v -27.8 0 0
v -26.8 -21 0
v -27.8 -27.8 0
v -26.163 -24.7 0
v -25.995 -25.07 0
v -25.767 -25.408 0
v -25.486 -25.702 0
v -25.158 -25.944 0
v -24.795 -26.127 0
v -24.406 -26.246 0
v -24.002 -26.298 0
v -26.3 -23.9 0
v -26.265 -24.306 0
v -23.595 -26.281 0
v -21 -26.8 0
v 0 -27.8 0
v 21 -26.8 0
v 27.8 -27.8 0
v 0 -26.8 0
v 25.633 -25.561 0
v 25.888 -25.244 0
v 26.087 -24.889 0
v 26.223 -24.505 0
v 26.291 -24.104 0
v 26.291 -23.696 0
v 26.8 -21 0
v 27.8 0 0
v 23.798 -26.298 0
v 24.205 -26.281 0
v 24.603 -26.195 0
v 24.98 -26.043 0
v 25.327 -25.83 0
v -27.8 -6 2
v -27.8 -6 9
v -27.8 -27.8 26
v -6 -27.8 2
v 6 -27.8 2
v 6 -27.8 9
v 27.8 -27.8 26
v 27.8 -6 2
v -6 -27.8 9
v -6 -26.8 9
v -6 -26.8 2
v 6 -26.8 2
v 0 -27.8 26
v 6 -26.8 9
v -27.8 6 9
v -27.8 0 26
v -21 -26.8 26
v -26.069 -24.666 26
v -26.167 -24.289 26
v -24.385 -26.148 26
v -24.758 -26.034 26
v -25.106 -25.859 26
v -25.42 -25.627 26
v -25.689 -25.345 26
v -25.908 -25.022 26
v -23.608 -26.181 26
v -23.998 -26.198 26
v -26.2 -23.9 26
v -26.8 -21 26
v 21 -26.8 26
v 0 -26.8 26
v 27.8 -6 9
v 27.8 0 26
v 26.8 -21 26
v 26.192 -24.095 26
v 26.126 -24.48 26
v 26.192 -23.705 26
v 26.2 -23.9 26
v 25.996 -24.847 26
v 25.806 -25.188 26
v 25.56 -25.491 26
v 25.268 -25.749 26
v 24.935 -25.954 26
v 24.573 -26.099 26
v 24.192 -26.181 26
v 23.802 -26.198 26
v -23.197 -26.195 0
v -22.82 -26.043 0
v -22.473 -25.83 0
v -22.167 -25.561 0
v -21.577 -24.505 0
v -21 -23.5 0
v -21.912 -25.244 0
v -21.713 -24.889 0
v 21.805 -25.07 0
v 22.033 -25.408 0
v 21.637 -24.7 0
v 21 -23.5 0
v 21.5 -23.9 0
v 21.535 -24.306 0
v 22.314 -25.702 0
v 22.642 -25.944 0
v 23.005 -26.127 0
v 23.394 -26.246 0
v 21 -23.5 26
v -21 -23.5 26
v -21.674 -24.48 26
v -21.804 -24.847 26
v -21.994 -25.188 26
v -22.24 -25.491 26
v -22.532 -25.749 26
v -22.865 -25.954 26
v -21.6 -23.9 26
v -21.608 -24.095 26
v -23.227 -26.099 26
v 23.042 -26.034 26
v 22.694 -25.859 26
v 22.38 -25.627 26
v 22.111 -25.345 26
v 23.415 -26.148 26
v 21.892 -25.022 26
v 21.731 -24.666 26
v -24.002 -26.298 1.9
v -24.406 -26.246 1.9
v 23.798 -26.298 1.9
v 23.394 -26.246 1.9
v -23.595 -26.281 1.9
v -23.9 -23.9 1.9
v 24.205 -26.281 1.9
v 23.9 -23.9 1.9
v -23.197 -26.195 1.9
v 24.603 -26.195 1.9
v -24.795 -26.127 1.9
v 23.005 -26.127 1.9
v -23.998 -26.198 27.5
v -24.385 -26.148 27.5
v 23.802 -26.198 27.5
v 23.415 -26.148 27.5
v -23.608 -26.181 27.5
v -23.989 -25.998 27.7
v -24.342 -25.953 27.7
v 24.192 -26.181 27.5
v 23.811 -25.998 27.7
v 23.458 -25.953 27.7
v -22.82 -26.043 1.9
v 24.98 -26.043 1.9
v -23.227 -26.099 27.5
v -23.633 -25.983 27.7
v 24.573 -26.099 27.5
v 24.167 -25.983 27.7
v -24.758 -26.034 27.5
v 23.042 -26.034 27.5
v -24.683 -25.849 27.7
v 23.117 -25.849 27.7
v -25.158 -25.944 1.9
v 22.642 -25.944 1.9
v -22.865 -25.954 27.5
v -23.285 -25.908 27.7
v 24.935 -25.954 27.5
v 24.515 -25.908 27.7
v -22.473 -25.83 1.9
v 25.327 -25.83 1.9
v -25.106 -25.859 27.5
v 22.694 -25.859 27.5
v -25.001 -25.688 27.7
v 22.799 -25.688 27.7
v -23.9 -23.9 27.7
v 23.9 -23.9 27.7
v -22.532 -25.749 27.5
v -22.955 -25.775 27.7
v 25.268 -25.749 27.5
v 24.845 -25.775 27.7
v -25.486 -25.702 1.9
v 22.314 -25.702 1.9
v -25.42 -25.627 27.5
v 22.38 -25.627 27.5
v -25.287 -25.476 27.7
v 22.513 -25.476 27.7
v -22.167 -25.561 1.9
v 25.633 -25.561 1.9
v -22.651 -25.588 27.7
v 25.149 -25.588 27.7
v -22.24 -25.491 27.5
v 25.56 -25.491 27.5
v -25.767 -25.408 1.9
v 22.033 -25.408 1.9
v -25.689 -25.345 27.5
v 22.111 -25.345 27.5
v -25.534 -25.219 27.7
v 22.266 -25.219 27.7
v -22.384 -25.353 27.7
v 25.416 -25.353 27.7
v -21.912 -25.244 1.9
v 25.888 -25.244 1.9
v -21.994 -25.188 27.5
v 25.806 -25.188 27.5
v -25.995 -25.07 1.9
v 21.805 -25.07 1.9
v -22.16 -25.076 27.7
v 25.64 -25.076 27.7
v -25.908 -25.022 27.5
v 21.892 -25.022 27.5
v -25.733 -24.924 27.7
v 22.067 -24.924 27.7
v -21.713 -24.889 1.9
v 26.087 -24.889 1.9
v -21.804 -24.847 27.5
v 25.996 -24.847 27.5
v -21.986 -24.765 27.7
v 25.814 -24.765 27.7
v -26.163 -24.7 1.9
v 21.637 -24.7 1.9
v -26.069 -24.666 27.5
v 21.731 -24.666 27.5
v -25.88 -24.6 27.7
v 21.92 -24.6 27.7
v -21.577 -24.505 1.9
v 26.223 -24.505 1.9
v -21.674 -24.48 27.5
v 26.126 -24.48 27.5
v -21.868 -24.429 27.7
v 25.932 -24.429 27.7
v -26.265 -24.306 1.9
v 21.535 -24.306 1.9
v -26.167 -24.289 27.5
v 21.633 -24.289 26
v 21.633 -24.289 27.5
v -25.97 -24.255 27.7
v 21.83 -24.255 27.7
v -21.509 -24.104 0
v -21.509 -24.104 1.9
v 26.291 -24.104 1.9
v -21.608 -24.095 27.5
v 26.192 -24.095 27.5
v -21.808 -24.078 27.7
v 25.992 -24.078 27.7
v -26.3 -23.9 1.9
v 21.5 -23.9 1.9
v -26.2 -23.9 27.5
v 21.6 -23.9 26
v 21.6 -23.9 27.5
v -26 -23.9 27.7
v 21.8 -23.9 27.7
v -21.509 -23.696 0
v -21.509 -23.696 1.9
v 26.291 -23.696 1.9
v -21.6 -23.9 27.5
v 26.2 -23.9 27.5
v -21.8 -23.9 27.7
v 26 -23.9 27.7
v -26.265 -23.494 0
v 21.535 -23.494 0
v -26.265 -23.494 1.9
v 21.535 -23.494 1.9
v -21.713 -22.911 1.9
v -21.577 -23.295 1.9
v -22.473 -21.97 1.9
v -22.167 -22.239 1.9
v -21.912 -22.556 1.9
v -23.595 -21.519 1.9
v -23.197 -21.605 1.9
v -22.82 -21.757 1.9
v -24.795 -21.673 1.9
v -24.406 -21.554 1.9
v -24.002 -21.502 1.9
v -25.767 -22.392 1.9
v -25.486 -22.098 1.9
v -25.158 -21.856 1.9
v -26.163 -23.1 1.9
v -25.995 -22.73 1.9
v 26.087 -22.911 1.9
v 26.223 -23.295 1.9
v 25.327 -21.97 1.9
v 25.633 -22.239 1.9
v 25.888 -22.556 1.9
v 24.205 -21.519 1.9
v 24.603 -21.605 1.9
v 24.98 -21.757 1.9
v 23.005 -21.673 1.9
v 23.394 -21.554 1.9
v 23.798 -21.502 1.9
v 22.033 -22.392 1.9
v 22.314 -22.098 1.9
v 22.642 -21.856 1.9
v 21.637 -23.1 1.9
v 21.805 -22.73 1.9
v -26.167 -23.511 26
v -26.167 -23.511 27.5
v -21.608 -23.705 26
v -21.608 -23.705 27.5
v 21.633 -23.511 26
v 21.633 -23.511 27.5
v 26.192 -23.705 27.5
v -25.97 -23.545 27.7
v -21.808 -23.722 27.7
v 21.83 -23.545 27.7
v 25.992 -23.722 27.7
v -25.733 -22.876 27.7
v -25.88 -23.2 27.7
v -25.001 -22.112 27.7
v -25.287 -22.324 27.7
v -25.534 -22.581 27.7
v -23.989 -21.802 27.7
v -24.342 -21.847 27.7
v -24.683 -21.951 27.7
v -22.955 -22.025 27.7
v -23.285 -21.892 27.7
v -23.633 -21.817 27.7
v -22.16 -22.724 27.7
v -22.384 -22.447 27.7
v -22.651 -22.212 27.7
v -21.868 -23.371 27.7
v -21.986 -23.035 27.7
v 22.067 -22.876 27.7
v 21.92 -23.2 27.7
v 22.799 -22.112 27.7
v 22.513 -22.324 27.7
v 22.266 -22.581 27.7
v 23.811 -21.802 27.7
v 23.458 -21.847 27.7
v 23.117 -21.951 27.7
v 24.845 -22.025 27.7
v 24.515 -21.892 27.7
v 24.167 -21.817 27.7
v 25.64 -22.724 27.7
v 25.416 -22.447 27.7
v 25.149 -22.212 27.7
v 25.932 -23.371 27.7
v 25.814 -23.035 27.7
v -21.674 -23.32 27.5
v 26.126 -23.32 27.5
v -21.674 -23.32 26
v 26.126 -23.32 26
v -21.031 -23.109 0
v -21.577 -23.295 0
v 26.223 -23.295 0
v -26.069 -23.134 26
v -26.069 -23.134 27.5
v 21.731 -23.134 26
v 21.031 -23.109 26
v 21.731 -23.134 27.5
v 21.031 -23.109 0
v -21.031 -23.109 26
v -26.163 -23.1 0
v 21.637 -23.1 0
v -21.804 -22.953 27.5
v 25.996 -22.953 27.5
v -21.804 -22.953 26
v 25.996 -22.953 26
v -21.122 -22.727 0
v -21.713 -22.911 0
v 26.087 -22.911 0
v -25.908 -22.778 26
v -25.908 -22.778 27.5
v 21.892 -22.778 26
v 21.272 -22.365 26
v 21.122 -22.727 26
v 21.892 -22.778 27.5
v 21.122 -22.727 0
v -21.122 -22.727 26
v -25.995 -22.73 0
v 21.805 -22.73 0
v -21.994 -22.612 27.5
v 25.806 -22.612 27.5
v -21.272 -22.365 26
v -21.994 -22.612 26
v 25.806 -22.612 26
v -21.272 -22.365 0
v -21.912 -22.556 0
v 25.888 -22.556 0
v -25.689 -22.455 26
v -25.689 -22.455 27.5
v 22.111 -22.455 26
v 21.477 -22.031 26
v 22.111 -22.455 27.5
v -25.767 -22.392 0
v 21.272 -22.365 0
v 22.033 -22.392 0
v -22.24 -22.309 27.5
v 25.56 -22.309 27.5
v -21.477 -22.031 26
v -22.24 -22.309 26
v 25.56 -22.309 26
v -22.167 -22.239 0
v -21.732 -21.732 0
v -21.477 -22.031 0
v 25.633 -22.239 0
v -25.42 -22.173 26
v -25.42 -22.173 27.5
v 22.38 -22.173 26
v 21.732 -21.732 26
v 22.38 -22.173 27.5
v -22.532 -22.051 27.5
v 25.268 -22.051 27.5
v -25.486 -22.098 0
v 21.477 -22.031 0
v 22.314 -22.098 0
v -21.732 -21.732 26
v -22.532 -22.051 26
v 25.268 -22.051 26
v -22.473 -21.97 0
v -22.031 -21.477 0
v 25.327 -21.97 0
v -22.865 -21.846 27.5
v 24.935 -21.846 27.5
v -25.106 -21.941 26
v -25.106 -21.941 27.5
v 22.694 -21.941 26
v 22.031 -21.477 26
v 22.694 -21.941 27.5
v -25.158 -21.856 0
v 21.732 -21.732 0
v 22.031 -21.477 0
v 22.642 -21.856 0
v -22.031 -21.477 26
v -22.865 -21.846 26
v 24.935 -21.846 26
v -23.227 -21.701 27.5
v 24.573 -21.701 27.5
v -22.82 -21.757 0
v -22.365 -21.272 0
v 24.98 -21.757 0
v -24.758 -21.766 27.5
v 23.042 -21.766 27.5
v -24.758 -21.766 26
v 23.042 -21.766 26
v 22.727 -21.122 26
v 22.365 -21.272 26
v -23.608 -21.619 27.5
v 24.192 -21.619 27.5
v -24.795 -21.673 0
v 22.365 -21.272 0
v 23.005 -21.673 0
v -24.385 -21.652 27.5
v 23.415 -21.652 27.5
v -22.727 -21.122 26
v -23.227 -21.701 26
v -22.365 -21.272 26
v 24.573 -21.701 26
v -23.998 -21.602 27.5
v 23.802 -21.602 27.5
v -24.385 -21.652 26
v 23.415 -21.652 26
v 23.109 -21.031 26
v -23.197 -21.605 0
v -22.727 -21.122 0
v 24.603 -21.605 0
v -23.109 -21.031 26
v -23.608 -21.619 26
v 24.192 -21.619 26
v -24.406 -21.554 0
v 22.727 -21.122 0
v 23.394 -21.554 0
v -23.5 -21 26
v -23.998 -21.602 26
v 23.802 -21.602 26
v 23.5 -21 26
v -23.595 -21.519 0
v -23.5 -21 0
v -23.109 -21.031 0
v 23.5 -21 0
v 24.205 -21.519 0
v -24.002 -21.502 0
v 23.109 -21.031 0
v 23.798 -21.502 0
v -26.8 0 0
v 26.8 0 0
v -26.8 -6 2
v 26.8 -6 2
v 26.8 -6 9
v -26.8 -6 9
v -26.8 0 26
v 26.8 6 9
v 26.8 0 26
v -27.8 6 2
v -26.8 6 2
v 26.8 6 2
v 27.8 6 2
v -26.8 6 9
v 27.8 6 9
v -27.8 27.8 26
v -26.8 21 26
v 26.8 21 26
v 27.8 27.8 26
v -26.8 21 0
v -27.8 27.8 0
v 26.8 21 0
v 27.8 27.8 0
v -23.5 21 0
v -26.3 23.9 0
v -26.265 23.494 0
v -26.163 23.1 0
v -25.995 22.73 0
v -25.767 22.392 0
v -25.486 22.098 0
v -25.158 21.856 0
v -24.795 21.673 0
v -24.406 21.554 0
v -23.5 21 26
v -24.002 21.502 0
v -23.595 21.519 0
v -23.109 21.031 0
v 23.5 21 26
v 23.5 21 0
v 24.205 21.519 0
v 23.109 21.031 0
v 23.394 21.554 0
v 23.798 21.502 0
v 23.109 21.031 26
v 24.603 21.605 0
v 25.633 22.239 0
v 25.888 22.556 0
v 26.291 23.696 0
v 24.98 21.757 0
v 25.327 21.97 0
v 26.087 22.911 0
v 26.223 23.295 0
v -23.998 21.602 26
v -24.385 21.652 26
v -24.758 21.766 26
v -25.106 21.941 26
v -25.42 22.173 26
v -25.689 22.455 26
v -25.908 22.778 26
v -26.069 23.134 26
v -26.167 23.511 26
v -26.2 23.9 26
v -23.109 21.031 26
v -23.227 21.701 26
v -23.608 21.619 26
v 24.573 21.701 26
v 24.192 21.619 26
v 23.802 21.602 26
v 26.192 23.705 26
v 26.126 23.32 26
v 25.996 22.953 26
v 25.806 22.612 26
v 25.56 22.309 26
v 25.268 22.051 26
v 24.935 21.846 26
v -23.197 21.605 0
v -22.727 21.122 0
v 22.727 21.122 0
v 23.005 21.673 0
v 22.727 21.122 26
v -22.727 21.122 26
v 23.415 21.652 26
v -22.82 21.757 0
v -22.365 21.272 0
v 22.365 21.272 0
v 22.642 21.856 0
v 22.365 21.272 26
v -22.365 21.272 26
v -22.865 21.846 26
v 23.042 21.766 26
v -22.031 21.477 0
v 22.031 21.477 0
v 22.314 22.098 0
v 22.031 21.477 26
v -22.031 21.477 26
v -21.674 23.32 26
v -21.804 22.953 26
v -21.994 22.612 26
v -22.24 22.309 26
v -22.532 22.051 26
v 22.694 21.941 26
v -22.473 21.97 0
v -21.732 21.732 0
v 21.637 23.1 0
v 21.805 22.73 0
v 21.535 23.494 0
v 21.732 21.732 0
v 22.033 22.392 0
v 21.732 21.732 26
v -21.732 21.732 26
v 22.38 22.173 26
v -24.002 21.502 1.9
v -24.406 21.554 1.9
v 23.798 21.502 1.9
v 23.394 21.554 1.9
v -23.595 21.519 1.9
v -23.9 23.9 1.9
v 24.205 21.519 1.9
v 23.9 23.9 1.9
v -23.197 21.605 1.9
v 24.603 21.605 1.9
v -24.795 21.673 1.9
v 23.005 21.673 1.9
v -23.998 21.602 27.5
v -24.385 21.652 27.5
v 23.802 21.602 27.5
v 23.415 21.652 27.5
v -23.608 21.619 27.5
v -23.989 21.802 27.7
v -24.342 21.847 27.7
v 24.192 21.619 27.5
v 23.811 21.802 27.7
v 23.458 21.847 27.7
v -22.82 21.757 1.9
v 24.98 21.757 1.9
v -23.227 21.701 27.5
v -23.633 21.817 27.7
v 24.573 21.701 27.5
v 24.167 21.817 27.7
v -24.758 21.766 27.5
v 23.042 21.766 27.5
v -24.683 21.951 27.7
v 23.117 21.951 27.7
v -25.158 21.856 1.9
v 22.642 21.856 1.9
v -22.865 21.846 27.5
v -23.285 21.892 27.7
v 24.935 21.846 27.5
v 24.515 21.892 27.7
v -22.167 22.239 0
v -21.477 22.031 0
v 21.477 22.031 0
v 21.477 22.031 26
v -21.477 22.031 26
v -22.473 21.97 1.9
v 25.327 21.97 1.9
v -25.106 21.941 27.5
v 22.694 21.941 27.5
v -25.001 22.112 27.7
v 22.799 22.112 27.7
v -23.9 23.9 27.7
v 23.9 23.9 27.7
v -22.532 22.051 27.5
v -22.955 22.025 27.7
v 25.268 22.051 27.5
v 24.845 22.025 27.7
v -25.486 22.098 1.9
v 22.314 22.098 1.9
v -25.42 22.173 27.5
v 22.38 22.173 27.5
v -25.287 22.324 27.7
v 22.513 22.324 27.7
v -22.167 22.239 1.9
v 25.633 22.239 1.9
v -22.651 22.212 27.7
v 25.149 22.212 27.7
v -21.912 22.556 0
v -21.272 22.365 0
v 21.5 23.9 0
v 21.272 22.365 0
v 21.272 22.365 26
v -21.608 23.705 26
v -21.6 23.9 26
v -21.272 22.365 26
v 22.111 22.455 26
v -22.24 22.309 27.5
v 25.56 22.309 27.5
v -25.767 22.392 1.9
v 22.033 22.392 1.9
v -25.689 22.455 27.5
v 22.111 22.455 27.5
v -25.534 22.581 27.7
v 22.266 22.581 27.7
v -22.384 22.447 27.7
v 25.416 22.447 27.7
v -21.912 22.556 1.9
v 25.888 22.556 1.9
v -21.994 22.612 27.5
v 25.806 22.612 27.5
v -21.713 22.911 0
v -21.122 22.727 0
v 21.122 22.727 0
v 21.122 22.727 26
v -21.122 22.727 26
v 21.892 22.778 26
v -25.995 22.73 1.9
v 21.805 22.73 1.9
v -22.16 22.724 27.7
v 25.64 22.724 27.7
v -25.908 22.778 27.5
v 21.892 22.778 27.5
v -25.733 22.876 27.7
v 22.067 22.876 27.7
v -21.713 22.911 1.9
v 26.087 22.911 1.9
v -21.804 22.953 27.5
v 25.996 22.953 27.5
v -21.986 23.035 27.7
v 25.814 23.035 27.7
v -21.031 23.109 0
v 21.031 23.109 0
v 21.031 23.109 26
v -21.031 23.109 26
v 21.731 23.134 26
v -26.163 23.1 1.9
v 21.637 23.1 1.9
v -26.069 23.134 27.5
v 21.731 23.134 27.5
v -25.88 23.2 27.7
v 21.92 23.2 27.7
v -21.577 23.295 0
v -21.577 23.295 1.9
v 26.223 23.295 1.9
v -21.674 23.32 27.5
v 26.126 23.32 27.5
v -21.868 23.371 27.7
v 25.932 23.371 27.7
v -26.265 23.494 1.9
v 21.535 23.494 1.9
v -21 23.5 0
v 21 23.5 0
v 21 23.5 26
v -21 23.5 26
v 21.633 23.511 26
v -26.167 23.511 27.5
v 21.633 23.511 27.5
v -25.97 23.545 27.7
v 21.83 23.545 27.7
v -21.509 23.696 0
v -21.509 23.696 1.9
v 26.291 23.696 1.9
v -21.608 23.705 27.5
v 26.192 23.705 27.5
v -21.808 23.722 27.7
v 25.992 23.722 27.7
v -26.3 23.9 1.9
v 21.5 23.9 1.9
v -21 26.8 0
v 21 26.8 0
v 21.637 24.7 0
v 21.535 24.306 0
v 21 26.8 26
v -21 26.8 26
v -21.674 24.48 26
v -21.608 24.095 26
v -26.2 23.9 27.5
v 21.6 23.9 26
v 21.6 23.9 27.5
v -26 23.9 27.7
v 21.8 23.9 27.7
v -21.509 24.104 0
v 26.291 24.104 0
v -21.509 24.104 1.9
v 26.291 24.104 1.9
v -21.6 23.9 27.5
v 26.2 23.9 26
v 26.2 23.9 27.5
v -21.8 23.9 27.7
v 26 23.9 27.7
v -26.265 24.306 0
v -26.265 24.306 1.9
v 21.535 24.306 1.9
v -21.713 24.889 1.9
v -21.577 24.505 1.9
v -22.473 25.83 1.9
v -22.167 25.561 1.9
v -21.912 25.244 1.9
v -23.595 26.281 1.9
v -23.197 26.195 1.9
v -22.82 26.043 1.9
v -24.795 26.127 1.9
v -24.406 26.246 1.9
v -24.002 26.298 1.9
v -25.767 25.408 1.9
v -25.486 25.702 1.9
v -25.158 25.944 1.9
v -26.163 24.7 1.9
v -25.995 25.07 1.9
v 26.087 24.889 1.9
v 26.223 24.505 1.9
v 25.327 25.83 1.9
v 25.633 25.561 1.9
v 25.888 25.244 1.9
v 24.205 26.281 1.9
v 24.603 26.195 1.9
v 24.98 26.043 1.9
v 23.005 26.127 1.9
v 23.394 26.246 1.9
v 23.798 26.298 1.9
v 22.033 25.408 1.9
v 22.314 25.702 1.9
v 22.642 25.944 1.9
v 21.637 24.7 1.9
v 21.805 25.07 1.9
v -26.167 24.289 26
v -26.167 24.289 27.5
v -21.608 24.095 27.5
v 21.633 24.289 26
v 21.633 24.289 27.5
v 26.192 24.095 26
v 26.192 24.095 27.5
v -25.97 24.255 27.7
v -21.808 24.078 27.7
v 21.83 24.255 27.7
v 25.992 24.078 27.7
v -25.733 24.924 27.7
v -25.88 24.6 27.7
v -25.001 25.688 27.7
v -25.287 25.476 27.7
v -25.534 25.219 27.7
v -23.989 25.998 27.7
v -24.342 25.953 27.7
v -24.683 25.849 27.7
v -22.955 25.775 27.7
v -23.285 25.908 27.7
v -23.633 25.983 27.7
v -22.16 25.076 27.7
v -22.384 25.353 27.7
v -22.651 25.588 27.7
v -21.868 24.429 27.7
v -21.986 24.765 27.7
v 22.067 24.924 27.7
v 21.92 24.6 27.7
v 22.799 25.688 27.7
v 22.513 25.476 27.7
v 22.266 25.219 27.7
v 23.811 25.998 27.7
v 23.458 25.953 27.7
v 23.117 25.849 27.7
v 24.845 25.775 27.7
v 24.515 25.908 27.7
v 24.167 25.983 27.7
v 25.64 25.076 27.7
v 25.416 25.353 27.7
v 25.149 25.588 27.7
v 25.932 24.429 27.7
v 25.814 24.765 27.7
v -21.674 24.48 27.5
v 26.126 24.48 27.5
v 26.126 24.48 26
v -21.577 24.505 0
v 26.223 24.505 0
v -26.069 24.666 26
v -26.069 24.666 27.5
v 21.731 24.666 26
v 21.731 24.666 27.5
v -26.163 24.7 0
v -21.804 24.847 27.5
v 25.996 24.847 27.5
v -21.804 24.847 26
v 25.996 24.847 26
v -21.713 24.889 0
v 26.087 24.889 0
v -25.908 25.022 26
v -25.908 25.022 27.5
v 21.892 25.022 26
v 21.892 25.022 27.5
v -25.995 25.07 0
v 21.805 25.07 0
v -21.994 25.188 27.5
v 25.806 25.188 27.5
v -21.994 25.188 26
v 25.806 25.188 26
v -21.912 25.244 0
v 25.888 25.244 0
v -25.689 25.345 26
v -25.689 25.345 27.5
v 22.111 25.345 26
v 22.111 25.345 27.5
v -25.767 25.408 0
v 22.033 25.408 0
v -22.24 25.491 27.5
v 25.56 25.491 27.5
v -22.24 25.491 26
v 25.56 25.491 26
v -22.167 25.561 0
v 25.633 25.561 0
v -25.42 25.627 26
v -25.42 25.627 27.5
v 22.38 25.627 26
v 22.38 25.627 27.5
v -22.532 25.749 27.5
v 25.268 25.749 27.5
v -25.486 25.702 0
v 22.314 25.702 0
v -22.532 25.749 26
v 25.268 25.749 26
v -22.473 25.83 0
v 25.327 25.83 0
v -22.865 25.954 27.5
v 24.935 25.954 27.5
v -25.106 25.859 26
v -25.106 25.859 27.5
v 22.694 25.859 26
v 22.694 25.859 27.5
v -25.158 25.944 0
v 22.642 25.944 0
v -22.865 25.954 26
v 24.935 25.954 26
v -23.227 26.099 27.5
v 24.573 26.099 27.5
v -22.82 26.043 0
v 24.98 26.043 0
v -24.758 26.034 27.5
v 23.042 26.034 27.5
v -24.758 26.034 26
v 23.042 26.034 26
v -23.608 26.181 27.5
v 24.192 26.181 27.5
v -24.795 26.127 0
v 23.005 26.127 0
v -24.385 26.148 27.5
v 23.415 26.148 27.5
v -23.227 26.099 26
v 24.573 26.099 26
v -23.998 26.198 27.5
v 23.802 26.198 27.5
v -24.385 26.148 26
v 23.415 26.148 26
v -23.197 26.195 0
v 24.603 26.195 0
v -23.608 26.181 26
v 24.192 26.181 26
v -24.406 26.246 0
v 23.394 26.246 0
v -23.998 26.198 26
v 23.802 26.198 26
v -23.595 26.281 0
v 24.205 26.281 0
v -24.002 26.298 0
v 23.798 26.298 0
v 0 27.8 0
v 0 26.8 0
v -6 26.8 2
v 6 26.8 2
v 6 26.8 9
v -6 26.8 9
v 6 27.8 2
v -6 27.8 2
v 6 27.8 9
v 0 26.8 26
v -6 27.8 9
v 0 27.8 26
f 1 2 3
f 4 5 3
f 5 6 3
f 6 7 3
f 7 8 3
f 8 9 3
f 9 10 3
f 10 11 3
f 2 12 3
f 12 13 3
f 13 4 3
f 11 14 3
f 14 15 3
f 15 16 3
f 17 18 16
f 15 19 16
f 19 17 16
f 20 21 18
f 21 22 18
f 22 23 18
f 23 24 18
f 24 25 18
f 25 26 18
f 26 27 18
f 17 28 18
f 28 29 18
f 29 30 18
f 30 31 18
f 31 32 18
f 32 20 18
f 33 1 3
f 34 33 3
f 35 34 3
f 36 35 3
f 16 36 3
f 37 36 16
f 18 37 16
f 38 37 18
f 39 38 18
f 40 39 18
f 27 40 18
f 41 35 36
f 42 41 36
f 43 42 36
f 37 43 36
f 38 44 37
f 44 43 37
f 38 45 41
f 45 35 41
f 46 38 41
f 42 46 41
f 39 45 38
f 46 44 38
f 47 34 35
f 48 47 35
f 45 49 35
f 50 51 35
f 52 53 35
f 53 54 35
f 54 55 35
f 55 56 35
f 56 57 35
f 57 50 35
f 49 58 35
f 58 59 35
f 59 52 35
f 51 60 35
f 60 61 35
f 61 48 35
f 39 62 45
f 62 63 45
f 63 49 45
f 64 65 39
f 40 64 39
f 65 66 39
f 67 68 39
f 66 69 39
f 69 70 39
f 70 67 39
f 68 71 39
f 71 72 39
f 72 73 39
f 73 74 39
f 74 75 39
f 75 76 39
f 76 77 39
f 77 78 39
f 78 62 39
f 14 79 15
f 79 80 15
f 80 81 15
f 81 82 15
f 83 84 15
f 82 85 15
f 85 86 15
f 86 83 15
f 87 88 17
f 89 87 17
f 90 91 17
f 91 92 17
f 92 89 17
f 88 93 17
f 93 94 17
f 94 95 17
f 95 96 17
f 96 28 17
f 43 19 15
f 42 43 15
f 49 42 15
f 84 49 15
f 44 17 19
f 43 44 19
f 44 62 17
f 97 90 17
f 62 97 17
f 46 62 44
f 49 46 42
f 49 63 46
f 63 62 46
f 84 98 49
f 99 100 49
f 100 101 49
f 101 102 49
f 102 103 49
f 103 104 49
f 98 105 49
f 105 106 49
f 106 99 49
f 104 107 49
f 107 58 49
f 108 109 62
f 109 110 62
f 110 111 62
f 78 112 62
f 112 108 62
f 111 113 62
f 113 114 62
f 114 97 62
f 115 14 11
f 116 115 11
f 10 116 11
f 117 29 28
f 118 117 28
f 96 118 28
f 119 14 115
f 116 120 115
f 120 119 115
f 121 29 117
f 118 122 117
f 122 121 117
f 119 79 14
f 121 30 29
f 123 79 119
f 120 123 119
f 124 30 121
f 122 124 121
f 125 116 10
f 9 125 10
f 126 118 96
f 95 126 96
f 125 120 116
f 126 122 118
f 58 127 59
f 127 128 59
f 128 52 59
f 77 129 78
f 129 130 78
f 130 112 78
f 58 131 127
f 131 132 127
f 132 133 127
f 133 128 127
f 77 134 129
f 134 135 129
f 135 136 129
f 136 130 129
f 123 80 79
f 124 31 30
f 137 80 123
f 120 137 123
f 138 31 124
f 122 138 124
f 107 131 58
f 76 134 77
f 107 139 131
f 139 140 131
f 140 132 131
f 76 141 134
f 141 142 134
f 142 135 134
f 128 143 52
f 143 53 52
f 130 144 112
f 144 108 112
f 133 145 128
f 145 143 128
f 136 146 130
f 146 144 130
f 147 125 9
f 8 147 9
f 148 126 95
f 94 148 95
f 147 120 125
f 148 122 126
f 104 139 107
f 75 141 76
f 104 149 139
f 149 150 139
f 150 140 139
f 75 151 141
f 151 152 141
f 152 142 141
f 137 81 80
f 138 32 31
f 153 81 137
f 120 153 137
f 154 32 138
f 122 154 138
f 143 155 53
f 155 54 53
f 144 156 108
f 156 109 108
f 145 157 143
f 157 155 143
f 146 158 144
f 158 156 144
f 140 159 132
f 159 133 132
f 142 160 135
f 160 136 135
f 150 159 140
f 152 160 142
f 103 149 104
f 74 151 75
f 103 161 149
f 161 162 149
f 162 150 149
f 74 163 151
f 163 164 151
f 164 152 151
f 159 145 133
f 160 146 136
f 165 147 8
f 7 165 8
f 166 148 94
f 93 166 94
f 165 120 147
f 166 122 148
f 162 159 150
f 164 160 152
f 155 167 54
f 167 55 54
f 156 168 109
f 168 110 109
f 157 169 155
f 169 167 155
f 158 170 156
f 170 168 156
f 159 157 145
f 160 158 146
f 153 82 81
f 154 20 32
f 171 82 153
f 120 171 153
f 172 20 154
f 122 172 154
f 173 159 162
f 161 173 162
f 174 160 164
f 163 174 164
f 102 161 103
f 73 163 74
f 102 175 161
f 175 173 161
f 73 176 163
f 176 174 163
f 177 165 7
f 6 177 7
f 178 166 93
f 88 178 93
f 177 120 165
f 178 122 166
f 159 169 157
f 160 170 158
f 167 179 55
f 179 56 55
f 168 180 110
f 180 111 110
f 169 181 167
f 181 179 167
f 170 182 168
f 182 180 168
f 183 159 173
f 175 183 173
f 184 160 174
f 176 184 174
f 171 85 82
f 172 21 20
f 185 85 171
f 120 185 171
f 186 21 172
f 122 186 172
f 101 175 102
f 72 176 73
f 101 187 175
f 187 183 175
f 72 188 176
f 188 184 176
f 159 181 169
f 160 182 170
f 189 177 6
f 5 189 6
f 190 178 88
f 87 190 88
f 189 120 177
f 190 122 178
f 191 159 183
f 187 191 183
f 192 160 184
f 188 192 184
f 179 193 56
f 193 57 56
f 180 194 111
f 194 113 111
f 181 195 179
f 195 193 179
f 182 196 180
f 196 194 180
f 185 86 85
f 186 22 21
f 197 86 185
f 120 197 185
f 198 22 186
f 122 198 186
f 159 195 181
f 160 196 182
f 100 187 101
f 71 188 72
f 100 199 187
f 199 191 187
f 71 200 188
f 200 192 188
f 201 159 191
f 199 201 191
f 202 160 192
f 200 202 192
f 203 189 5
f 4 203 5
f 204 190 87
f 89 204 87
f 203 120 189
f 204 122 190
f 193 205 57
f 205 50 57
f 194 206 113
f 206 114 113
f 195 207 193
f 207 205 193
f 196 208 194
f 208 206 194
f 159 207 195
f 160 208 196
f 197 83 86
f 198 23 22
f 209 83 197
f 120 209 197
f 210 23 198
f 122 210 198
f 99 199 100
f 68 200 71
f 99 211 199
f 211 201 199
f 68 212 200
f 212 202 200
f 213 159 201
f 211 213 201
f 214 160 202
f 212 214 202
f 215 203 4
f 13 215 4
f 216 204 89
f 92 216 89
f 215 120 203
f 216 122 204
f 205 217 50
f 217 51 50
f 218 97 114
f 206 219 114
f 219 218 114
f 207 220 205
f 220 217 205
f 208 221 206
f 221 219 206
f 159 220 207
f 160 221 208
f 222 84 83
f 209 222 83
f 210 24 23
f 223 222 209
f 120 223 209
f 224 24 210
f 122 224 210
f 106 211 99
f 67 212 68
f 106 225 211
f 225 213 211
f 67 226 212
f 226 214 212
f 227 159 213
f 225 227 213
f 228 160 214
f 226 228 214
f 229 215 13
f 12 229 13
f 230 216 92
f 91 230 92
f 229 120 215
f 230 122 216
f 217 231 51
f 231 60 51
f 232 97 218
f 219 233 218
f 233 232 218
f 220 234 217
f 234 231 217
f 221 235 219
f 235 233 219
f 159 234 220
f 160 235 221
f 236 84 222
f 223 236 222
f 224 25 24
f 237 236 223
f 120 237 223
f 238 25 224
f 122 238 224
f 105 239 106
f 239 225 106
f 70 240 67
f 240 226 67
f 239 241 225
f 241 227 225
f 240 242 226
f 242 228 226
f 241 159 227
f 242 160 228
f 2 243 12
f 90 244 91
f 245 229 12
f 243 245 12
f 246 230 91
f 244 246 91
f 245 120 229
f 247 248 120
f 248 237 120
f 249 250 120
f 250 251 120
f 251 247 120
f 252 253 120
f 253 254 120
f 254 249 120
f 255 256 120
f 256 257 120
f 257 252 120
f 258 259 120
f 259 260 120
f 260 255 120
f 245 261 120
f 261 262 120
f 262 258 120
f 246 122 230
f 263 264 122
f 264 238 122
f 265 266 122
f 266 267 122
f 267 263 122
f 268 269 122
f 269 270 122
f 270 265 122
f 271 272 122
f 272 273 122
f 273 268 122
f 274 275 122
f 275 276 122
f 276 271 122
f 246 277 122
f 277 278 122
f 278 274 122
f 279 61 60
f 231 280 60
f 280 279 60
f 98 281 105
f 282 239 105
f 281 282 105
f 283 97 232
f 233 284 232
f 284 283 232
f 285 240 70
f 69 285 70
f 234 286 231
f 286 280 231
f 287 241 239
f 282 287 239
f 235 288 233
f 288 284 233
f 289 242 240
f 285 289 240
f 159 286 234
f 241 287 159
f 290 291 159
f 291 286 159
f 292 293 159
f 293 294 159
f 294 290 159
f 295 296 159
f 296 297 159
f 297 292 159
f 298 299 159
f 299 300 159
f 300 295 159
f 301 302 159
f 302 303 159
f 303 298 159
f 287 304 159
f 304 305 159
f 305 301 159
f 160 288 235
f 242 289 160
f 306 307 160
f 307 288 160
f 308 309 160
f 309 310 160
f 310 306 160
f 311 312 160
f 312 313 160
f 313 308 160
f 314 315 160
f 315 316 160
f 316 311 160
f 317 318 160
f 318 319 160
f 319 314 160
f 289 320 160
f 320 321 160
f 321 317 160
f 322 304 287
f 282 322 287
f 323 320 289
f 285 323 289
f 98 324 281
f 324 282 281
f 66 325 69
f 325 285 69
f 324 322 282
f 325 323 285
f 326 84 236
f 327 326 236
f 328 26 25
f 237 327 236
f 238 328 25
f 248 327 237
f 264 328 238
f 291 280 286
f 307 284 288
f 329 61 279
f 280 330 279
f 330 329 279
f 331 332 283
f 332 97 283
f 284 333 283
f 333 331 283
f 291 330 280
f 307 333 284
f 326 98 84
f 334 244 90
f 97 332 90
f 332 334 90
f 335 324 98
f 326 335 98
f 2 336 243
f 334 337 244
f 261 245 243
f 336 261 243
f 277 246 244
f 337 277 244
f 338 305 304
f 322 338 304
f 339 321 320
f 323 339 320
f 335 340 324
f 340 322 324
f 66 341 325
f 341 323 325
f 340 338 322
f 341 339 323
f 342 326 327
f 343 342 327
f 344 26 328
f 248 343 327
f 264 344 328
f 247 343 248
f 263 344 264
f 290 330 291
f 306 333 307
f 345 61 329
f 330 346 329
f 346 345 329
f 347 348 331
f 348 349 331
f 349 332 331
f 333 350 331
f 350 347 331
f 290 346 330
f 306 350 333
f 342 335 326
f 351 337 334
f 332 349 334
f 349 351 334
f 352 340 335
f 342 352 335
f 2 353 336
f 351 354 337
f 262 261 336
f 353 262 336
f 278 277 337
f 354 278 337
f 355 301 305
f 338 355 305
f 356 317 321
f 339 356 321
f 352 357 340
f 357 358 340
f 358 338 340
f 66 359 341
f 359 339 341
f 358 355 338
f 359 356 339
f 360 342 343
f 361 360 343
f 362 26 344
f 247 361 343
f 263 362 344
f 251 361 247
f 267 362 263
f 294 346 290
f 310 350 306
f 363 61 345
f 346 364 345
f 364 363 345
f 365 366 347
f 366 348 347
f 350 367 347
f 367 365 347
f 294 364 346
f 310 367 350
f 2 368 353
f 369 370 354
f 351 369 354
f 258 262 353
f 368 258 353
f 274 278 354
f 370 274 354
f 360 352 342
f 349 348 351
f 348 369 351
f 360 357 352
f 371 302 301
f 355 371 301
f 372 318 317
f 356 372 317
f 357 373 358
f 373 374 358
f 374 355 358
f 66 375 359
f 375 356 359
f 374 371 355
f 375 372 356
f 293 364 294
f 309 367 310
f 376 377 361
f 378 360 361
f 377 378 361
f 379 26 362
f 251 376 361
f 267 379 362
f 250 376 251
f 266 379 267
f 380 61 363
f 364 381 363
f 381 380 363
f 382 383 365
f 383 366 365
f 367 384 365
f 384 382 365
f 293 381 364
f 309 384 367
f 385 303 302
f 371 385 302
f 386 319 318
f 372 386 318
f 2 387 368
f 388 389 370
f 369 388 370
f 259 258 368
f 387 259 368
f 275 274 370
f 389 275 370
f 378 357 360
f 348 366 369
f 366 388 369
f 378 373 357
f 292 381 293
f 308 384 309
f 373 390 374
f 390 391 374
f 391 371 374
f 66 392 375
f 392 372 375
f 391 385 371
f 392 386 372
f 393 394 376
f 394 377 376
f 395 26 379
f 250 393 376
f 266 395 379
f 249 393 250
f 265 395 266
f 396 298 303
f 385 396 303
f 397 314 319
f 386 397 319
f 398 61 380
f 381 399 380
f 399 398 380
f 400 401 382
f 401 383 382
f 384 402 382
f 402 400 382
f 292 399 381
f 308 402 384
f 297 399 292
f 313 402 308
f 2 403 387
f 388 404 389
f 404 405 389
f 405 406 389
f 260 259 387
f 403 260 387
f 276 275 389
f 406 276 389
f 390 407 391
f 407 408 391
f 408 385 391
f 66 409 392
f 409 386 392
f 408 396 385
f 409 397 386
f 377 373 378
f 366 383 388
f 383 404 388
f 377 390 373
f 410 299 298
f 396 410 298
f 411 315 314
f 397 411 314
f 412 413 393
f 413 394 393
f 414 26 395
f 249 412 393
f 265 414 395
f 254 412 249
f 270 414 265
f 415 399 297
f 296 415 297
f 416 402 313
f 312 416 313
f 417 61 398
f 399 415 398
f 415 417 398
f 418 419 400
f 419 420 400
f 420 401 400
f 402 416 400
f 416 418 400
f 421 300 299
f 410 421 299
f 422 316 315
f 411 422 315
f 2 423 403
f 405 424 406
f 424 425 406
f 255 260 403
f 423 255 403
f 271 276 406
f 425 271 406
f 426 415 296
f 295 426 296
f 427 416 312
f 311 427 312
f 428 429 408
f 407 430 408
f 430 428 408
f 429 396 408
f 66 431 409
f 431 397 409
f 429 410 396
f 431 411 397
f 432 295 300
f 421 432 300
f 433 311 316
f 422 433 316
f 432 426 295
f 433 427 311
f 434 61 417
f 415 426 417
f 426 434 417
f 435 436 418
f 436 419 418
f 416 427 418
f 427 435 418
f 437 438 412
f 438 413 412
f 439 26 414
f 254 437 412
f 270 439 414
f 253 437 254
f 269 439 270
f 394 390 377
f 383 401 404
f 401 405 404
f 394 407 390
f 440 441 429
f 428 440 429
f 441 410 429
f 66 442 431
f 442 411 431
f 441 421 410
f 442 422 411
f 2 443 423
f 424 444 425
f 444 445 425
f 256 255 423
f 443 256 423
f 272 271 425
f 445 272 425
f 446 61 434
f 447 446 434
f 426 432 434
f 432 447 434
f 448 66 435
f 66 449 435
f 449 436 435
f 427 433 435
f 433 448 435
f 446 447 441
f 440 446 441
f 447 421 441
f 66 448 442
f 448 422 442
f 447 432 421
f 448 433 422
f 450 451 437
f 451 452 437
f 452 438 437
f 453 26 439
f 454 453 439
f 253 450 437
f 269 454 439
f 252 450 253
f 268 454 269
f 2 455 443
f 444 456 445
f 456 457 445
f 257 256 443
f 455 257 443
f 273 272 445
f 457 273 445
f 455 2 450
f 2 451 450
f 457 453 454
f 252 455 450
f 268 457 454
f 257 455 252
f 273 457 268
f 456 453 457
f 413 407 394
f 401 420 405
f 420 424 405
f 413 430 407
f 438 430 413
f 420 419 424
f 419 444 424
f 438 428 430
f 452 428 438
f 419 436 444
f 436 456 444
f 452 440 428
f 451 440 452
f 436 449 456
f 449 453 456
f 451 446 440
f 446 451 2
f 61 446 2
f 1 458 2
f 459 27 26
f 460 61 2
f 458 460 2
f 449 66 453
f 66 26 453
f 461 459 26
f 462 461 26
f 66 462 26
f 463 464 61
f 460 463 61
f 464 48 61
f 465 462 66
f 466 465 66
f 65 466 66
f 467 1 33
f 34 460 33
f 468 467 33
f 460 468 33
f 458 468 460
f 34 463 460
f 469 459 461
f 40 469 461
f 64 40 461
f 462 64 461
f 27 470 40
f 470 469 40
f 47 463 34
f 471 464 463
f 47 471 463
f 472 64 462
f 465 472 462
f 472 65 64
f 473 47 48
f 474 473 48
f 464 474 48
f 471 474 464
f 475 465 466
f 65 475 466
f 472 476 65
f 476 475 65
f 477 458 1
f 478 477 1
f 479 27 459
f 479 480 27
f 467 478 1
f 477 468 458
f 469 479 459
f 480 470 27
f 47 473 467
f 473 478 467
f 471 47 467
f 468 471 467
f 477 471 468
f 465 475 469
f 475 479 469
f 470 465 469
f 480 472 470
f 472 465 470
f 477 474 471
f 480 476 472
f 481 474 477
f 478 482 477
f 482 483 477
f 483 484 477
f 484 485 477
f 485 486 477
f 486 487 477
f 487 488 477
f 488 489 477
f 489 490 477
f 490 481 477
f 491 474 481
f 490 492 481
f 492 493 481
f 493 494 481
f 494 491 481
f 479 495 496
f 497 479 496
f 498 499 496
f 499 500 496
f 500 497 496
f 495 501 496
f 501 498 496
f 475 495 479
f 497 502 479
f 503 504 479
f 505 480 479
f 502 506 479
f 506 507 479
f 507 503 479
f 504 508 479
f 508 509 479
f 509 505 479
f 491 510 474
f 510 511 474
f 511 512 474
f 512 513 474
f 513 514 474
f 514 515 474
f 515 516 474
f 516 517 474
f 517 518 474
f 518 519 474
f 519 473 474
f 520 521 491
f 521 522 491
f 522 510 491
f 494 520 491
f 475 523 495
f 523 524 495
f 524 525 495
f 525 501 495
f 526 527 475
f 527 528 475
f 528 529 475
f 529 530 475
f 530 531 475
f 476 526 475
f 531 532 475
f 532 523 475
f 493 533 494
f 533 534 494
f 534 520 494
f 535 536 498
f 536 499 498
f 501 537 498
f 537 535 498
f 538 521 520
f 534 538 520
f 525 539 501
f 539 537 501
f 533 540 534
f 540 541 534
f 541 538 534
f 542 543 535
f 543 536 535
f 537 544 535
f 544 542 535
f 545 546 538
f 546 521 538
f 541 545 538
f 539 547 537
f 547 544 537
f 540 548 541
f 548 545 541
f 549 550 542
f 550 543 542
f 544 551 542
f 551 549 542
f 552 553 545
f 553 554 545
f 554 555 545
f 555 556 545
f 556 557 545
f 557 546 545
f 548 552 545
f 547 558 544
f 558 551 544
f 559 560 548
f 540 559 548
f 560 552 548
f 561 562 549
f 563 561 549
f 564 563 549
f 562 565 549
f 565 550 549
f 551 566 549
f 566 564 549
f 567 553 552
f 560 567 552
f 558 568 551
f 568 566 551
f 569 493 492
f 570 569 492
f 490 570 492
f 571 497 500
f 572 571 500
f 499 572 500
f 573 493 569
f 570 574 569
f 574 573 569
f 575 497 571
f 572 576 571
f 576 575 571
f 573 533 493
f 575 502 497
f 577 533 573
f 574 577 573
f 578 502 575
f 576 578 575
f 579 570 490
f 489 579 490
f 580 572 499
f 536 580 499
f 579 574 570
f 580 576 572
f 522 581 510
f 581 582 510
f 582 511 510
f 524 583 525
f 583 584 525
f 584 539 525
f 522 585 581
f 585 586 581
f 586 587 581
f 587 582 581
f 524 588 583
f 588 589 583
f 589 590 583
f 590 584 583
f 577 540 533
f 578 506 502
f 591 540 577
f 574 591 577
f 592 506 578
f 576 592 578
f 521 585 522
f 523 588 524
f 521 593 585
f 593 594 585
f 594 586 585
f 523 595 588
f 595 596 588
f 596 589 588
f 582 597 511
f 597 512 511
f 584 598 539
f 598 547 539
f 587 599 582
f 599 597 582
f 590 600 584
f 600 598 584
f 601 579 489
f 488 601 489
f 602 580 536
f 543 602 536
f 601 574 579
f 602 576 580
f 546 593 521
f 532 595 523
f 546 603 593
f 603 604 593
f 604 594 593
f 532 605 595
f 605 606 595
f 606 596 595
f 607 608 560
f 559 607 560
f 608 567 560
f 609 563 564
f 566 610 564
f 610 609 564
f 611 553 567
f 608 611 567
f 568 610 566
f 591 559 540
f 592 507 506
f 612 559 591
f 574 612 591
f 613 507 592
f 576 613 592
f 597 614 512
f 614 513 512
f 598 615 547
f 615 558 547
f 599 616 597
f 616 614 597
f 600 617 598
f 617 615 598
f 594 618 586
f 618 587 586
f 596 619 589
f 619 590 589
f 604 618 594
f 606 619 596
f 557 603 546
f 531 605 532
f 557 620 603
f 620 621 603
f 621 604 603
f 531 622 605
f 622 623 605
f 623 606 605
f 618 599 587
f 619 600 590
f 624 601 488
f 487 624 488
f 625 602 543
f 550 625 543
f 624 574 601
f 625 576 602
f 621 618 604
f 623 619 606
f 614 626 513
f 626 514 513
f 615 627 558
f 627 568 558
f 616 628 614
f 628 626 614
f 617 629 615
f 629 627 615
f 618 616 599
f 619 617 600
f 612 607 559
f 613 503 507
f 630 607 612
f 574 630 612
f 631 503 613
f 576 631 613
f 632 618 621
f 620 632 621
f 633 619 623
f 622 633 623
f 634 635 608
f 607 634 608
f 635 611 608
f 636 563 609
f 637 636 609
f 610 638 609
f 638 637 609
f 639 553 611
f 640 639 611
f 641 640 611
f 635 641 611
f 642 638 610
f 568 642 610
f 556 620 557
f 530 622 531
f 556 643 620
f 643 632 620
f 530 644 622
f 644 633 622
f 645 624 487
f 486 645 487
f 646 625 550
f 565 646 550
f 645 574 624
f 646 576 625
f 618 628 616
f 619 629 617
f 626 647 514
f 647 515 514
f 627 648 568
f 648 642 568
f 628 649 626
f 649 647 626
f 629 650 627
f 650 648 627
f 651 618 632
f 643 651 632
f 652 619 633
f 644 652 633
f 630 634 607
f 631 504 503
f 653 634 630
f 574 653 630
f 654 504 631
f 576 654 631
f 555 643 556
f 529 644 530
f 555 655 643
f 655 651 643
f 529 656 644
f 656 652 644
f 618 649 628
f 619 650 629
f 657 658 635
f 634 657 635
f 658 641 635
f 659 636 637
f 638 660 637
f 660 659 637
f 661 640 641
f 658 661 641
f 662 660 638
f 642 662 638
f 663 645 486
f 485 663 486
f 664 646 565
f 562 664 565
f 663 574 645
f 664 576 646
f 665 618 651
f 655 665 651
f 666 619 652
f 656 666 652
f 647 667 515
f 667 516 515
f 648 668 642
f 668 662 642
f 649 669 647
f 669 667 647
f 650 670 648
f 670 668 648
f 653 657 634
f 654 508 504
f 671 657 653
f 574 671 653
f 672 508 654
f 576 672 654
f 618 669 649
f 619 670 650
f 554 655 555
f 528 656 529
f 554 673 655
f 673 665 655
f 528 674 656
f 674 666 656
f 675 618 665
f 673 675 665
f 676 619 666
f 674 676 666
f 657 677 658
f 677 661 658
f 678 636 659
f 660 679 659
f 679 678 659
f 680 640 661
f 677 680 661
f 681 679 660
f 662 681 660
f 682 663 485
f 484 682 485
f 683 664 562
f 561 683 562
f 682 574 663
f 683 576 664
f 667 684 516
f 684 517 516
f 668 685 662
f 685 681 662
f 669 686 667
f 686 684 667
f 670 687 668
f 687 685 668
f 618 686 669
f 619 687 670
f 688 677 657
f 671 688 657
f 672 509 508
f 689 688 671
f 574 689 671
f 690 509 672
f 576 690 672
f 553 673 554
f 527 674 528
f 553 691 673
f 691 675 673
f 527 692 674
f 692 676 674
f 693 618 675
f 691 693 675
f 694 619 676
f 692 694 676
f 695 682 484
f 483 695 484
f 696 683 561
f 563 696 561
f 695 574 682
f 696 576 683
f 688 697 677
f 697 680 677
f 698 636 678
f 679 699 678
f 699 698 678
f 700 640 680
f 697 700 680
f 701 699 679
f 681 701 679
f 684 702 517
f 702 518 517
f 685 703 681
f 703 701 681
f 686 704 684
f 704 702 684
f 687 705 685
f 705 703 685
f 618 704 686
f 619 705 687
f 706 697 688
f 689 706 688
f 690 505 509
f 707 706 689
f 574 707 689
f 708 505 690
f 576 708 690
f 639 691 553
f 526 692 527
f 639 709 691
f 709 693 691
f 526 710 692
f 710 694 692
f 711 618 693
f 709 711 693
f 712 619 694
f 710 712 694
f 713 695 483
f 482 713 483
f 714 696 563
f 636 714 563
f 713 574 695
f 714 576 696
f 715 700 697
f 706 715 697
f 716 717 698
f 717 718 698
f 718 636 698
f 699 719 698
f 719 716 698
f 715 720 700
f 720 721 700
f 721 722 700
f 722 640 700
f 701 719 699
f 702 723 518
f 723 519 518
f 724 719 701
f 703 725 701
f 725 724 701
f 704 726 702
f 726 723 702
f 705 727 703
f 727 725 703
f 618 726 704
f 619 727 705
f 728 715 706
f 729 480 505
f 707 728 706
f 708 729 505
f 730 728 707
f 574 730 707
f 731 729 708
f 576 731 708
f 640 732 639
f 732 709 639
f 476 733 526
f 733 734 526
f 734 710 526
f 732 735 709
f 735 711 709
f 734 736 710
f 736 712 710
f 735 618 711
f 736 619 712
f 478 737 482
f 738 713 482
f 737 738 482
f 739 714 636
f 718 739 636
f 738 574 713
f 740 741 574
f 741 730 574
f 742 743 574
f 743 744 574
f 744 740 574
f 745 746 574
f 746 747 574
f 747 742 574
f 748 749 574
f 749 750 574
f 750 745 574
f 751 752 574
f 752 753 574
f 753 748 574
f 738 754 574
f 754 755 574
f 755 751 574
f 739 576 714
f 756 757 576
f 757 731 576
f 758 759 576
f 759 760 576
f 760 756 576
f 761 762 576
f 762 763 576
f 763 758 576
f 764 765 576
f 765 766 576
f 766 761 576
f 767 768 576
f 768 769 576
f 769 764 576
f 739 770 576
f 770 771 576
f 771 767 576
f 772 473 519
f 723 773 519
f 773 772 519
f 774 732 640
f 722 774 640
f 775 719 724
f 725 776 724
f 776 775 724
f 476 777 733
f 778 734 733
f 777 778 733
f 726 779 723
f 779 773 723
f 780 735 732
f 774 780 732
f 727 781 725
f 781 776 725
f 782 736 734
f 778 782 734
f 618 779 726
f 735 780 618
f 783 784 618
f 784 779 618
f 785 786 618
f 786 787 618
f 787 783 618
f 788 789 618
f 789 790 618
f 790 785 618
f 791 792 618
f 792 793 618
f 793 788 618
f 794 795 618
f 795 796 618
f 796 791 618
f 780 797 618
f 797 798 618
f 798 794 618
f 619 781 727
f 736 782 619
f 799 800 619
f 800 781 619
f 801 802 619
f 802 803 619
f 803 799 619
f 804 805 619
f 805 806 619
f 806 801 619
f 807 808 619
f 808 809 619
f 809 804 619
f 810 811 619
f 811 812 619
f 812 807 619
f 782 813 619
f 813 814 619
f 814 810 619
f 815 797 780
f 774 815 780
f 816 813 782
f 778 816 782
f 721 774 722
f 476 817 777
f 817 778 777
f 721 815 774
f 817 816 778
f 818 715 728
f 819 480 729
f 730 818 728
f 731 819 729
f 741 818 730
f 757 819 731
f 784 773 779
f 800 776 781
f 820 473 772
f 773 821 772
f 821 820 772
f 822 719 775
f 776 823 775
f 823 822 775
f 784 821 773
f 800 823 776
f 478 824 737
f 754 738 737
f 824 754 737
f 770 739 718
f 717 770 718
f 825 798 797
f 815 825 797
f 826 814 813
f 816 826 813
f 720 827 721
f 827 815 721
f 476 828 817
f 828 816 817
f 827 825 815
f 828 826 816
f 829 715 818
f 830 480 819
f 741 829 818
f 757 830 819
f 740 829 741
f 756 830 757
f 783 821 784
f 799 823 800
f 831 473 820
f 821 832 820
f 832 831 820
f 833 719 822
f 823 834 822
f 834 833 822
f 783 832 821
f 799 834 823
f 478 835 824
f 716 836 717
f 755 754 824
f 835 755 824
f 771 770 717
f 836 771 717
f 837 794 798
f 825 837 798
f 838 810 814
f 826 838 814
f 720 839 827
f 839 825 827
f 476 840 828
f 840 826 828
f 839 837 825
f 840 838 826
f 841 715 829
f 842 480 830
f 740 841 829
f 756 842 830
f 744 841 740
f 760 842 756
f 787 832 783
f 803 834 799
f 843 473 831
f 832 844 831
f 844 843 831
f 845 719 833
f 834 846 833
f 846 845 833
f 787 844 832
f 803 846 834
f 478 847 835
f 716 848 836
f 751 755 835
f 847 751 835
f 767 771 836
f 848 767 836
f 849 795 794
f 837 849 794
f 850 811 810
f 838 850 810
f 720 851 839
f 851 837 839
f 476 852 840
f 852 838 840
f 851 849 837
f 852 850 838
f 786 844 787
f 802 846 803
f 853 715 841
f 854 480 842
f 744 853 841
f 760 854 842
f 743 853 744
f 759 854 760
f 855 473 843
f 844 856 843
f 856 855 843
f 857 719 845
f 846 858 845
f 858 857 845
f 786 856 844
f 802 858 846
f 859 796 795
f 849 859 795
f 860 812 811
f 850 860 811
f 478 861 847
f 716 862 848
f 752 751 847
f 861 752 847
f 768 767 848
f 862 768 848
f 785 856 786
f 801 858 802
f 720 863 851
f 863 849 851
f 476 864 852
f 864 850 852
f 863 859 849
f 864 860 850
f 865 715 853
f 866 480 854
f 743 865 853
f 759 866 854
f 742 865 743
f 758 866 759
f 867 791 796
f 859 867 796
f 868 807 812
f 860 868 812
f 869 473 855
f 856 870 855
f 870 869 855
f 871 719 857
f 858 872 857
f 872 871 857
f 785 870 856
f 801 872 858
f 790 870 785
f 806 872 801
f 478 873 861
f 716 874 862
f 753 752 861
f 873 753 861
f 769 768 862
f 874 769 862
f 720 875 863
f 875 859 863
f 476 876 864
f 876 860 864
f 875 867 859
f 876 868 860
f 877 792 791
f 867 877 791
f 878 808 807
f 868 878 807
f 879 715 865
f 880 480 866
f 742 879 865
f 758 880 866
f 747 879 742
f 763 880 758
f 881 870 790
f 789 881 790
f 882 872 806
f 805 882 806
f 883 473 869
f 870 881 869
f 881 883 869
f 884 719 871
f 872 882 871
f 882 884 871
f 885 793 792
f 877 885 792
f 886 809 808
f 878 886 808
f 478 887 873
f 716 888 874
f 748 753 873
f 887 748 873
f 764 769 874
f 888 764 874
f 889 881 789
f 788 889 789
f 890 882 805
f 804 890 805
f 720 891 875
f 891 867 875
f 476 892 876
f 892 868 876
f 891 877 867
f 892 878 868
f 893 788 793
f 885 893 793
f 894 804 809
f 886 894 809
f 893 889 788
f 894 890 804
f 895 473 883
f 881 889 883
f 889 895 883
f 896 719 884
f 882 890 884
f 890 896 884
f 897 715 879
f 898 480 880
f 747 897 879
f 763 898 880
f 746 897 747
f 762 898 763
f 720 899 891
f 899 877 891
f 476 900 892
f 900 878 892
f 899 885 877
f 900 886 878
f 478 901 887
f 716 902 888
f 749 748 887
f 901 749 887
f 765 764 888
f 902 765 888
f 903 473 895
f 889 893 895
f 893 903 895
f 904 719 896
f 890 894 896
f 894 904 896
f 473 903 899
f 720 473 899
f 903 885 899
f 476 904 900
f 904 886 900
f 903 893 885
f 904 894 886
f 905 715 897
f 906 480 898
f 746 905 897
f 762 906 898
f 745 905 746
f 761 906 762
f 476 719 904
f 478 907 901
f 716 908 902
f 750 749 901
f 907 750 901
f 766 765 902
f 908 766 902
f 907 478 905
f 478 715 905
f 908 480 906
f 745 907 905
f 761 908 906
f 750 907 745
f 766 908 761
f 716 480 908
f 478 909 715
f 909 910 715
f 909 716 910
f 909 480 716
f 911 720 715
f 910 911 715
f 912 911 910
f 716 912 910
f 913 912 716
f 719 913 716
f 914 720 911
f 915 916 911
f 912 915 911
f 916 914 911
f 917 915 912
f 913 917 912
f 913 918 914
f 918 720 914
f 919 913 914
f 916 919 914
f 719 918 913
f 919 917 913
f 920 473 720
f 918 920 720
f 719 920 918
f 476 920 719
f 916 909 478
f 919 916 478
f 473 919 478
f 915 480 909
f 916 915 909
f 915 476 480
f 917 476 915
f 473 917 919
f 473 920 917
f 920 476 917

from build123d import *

# Parameters (mm, degrees)
SKICA1_W                 = 5.8
SKICA1_H                 = 5.8
SKICA1_W_2               = 1
SKICA1_H_2               = 42
SKICA1_W_3               = 42
SKICA1_H_3               = 1
P_IDAT_VYSUNUT_M2_DEPTH  = 26
ZAOBLIT1_R               = 2.5
SKICA2_R                 = 2.4
ODEBRAT_VYSUNUT_M1_DEPTH = 1.9
SKICA3_R                 = 2.3
P_IDAT_VYSUNUT_M3_DEPTH  = 1.7
ZKOSEN_1_SIZE            = 0.2
SKICA4_W                 = 12
SKICA4_H                 = 7
ODEBRAT_VYSUNUT_M2_DEPTH = 68.7
SKICA5_W                 = 7
SKICA5_H                 = 12
ODEBRAT_VYSUNUT_M3_DEPTH = 55.6


with BuildPart() as part:
    # Skica1 → Přidat vysunutím2 (new body)
    with BuildSketch(Plane.XY):
        Polygon((-27.8, 27.8), (-27.8, 21), (-26.8, 21), (-26.8, 26.8), (-21, 26.8), (-21, 27.8), align=None)
        with Locations((-23.9, 23.9)):
            Rectangle(SKICA1_W, SKICA1_H)
        Polygon((26.8, 21), (27.8, 21), (27.8, 27.8), (21, 27.8), (21, 26.8), (26.8, 26.8), align=None)
        with Locations((23.9, 23.9)):
            Rectangle(SKICA1_W, SKICA1_H)
        Polygon((21, -26.8), (21, -27.8), (27.8, -27.8), (27.8, -21), (26.8, -21), (26.8, -26.8), align=None)
        with Locations((23.9, -23.9)):
            Rectangle(SKICA1_W, SKICA1_H)
        with Locations((-23.9, -23.9)):
            Rectangle(SKICA1_W, SKICA1_H)
        Polygon((-27.8, -27.8), (-21, -27.8), (-21, -26.8), (-26.8, -26.8), (-26.8, -21), (-27.8, -21), align=None)
        with Locations((-27.3, 0)):
            Rectangle(SKICA1_W_2, SKICA1_H_2)
        with Locations((0, -27.3)):
            Rectangle(SKICA1_W_3, SKICA1_H_3)
        with Locations((27.3, 0)):
            Rectangle(SKICA1_W_2, SKICA1_H_2)
        with Locations((0, 27.3)):
            Rectangle(SKICA1_W_3, SKICA1_H_3)
    extrude(amount=P_IDAT_VYSUNUT_M2_DEPTH)

    # Zaoblit1
    zaoblit1_edges = [part.edges().sort_by_distance(p)[0] for p in [
        (21, -21, 13),
        (21, 21, 13),
        (-21, 21, 13),
        (-21, -21, 13),
    ]]
    fillet(zaoblit1_edges, radius=ZAOBLIT1_R)

    # Skica2 → Odebrat vysunutím1 (cut)
    with BuildSketch(Plane(origin=(0, 0, 0), x_dir=(-1, 0, 0), z_dir=(0, 0, -1))):
        with Locations((-23.9, 23.9)):
            Circle(SKICA2_R)
        with Locations((23.9, 23.9)):
            Circle(SKICA2_R)
        with Locations((23.9, -23.9)):
            Circle(SKICA2_R)
        with Locations((-23.9, -23.9)):
            Circle(SKICA2_R)
    extrude(amount=-ODEBRAT_VYSUNUT_M1_DEPTH, mode=Mode.SUBTRACT)

    # Skica3 → Přidat vysunutím3 (add)
    with BuildSketch(Plane.XY.offset(26)):
        with Locations((-23.9, 23.9)):
            Circle(SKICA3_R)
        with Locations((23.9, 23.9)):
            Circle(SKICA3_R)
        with Locations((23.9, -23.9)):
            Circle(SKICA3_R)
        with Locations((-23.9, -23.9)):
            Circle(SKICA3_R)
    extrude(amount=P_IDAT_VYSUNUT_M3_DEPTH)

    # Zkosení1
    zkosen_1_edges = [part.edges().sort_by_distance(p)[0] for p in [
        (-26.2, 23.9, 27.7),
        (21.6, 23.9, 27.7),
        (21.6, -23.9, 27.7),
        (-26.2, -23.9, 27.7),
    ]]
    chamfer(zkosen_1_edges, length=ZKOSEN_1_SIZE)

    # Skica4 → Odebrat vysunutím2 (cut)
    with BuildSketch(Plane(origin=(0, -27.8, 0), x_dir=(-1, 0, 0), z_dir=(0, -1, 0))):
        with Locations((0, -5.5)):
            Rectangle(SKICA4_W, SKICA4_H)
    extrude(amount=-ODEBRAT_VYSUNUT_M2_DEPTH, mode=Mode.SUBTRACT)

    # Skica5 → Odebrat vysunutím3 (cut)
    with BuildSketch(Plane.ZY.offset(27.8)):
        with Locations((5.5, 0)):
            Rectangle(SKICA5_W, SKICA5_H)
    extrude(amount=-ODEBRAT_VYSUNUT_M3_DEPTH, mode=Mode.SUBTRACT)


solid = part.part
